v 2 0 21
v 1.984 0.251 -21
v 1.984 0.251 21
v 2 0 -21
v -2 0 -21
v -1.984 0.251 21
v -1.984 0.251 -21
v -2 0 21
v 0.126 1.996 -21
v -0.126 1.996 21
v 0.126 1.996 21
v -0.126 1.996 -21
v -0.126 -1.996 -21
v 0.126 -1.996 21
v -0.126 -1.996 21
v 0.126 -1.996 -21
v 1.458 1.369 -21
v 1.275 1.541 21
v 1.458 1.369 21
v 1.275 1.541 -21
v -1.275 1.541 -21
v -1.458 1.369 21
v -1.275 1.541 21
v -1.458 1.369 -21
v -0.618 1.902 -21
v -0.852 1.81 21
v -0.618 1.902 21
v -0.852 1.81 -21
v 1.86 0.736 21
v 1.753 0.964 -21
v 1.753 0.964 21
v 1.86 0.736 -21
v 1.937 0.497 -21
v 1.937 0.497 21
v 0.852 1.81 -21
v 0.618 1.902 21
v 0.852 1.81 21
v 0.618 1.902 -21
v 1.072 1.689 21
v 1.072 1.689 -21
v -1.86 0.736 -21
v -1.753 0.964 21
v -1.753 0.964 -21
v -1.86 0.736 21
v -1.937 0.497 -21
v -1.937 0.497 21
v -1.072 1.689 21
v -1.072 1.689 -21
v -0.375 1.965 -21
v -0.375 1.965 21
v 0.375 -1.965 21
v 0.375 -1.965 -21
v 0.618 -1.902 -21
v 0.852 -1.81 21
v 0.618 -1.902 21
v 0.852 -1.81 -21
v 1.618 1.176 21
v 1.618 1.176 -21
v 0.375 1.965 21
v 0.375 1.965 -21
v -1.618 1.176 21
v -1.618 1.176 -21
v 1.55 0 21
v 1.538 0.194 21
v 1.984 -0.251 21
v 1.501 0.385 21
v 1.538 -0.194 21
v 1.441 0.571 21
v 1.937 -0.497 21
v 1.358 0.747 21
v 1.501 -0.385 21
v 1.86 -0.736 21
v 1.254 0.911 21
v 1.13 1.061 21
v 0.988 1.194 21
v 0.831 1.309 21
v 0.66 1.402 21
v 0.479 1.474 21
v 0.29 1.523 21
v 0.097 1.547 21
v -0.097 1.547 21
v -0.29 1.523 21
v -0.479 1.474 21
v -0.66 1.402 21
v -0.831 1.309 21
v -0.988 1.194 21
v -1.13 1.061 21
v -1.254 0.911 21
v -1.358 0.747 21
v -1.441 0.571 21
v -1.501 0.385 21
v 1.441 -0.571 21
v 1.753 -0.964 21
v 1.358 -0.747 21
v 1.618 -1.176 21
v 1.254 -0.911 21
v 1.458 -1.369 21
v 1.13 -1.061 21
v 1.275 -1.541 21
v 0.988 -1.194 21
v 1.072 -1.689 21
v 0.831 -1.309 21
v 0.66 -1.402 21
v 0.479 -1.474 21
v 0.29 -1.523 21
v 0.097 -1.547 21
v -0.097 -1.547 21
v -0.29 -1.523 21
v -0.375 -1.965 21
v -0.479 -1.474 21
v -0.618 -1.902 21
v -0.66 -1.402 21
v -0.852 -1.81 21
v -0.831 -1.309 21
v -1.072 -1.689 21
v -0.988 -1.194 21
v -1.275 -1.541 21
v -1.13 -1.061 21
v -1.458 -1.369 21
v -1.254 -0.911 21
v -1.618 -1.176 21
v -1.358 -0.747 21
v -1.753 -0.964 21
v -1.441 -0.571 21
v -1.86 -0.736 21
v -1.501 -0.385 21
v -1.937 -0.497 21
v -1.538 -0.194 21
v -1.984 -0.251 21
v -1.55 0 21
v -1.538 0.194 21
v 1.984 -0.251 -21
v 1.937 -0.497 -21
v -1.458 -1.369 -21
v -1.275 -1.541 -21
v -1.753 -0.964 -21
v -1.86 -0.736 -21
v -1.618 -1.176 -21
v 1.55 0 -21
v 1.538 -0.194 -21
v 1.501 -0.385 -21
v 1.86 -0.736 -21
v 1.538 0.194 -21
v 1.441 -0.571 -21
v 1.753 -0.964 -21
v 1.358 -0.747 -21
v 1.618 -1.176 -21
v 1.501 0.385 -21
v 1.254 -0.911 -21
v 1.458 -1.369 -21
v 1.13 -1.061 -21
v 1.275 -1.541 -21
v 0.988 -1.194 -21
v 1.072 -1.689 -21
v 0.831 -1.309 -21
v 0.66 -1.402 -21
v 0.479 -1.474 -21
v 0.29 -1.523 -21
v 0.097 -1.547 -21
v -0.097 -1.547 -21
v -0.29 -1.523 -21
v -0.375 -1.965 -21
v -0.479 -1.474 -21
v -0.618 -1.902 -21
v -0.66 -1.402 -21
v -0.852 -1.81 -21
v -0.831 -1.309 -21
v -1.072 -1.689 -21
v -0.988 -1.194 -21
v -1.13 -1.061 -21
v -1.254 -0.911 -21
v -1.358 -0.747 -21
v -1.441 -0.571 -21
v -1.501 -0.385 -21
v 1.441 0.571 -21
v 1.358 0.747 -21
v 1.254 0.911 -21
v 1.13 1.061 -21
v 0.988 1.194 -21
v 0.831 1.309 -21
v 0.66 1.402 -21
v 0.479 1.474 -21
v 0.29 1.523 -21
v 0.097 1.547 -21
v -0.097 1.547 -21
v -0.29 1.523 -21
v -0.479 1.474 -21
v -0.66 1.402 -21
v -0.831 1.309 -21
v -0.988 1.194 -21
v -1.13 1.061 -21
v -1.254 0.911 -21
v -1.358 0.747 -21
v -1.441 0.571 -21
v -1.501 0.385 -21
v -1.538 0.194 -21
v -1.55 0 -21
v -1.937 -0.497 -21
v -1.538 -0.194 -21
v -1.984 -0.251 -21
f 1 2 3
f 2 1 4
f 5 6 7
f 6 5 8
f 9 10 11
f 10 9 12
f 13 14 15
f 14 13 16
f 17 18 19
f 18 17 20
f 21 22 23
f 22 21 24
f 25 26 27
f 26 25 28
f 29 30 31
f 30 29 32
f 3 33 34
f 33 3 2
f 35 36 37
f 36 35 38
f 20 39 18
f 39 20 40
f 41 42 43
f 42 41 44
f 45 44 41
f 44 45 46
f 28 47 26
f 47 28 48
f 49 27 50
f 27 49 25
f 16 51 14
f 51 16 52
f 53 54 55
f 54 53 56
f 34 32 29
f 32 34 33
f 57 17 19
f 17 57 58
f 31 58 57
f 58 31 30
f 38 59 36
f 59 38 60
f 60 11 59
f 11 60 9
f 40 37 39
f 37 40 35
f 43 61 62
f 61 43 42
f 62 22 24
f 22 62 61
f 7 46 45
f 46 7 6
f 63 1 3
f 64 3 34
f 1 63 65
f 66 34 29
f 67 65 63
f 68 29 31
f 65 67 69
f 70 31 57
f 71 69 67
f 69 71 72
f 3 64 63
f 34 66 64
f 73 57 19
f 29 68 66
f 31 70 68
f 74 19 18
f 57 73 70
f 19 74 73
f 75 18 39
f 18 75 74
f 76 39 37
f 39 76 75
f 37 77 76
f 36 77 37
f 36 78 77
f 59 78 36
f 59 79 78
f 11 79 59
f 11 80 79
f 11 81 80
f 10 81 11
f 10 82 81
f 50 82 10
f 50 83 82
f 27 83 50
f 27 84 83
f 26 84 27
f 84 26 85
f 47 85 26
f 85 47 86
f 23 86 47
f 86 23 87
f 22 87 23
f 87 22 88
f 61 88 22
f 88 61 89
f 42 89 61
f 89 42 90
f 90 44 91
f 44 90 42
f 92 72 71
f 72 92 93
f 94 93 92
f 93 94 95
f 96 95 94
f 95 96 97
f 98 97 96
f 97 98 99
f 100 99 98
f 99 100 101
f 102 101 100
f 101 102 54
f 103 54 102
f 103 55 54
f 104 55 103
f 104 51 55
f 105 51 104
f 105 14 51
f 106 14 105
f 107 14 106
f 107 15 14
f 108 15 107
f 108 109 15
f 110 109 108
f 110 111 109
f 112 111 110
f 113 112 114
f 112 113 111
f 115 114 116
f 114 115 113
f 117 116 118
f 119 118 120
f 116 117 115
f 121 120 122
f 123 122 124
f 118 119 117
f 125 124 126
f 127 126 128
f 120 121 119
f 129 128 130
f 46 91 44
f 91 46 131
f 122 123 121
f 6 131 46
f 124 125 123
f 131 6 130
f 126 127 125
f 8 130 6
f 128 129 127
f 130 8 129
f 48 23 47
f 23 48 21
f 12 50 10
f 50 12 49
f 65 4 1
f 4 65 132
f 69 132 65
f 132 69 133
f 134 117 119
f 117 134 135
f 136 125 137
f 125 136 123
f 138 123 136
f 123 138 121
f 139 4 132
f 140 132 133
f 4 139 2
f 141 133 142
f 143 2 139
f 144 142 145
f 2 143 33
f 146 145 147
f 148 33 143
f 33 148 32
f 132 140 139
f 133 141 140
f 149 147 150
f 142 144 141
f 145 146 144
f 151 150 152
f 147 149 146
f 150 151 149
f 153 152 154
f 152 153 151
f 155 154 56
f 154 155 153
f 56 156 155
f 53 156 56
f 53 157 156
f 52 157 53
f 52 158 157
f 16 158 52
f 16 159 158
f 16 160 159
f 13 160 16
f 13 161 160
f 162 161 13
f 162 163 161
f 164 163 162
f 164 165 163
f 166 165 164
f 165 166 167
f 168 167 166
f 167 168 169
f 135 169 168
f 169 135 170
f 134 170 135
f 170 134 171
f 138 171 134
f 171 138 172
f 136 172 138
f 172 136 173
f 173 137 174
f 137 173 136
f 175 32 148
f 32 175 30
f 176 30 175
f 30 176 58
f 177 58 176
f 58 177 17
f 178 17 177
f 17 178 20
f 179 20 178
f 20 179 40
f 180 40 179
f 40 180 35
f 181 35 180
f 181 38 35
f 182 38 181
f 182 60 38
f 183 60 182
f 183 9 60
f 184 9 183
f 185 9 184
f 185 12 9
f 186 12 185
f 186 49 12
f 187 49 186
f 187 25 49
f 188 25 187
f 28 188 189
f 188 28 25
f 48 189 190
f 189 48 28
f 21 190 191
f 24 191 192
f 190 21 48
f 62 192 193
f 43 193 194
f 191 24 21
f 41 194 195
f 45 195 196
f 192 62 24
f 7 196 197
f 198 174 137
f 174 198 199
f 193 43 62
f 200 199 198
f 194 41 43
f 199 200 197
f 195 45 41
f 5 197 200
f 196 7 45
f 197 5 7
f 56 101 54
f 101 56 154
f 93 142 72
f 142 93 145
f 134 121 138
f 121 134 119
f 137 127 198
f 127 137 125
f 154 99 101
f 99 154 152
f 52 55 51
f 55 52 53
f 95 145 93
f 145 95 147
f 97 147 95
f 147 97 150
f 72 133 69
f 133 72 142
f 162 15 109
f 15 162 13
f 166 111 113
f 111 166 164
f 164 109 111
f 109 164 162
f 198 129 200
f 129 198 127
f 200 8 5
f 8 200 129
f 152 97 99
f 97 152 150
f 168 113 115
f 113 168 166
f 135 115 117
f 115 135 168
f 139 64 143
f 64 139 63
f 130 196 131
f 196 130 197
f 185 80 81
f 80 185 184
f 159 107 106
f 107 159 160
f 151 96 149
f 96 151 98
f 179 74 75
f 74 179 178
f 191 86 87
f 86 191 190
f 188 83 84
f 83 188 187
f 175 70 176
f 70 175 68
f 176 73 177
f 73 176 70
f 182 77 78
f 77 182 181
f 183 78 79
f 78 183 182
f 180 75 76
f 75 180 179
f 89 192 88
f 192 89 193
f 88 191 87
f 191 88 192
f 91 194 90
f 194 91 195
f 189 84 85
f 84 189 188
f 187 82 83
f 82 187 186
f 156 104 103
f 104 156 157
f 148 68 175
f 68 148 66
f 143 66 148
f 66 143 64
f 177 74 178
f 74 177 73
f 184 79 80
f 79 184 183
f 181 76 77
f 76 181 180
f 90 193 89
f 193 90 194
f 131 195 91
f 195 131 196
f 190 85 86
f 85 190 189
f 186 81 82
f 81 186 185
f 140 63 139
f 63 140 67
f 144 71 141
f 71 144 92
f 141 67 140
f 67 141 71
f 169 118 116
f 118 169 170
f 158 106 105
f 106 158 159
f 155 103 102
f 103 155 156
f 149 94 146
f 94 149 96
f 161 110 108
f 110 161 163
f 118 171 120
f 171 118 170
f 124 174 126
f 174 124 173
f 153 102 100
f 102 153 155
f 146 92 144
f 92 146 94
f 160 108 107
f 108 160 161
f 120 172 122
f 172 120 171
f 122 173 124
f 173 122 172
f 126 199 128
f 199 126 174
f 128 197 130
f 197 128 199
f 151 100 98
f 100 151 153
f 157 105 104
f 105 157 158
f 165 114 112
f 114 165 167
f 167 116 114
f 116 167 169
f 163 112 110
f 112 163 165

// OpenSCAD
$fn = 50;


difference() {
	union() {
		translate(v = [0, 0, -21.0000000000]) {
			cylinder(h = 42, r = 2.0000000000);
		}
	}
	union() {
		translate(v = [0, 0, -100.0000000000]) {
			cylinder(h = 200, r = 1.5500000000);
		}
	}
}
